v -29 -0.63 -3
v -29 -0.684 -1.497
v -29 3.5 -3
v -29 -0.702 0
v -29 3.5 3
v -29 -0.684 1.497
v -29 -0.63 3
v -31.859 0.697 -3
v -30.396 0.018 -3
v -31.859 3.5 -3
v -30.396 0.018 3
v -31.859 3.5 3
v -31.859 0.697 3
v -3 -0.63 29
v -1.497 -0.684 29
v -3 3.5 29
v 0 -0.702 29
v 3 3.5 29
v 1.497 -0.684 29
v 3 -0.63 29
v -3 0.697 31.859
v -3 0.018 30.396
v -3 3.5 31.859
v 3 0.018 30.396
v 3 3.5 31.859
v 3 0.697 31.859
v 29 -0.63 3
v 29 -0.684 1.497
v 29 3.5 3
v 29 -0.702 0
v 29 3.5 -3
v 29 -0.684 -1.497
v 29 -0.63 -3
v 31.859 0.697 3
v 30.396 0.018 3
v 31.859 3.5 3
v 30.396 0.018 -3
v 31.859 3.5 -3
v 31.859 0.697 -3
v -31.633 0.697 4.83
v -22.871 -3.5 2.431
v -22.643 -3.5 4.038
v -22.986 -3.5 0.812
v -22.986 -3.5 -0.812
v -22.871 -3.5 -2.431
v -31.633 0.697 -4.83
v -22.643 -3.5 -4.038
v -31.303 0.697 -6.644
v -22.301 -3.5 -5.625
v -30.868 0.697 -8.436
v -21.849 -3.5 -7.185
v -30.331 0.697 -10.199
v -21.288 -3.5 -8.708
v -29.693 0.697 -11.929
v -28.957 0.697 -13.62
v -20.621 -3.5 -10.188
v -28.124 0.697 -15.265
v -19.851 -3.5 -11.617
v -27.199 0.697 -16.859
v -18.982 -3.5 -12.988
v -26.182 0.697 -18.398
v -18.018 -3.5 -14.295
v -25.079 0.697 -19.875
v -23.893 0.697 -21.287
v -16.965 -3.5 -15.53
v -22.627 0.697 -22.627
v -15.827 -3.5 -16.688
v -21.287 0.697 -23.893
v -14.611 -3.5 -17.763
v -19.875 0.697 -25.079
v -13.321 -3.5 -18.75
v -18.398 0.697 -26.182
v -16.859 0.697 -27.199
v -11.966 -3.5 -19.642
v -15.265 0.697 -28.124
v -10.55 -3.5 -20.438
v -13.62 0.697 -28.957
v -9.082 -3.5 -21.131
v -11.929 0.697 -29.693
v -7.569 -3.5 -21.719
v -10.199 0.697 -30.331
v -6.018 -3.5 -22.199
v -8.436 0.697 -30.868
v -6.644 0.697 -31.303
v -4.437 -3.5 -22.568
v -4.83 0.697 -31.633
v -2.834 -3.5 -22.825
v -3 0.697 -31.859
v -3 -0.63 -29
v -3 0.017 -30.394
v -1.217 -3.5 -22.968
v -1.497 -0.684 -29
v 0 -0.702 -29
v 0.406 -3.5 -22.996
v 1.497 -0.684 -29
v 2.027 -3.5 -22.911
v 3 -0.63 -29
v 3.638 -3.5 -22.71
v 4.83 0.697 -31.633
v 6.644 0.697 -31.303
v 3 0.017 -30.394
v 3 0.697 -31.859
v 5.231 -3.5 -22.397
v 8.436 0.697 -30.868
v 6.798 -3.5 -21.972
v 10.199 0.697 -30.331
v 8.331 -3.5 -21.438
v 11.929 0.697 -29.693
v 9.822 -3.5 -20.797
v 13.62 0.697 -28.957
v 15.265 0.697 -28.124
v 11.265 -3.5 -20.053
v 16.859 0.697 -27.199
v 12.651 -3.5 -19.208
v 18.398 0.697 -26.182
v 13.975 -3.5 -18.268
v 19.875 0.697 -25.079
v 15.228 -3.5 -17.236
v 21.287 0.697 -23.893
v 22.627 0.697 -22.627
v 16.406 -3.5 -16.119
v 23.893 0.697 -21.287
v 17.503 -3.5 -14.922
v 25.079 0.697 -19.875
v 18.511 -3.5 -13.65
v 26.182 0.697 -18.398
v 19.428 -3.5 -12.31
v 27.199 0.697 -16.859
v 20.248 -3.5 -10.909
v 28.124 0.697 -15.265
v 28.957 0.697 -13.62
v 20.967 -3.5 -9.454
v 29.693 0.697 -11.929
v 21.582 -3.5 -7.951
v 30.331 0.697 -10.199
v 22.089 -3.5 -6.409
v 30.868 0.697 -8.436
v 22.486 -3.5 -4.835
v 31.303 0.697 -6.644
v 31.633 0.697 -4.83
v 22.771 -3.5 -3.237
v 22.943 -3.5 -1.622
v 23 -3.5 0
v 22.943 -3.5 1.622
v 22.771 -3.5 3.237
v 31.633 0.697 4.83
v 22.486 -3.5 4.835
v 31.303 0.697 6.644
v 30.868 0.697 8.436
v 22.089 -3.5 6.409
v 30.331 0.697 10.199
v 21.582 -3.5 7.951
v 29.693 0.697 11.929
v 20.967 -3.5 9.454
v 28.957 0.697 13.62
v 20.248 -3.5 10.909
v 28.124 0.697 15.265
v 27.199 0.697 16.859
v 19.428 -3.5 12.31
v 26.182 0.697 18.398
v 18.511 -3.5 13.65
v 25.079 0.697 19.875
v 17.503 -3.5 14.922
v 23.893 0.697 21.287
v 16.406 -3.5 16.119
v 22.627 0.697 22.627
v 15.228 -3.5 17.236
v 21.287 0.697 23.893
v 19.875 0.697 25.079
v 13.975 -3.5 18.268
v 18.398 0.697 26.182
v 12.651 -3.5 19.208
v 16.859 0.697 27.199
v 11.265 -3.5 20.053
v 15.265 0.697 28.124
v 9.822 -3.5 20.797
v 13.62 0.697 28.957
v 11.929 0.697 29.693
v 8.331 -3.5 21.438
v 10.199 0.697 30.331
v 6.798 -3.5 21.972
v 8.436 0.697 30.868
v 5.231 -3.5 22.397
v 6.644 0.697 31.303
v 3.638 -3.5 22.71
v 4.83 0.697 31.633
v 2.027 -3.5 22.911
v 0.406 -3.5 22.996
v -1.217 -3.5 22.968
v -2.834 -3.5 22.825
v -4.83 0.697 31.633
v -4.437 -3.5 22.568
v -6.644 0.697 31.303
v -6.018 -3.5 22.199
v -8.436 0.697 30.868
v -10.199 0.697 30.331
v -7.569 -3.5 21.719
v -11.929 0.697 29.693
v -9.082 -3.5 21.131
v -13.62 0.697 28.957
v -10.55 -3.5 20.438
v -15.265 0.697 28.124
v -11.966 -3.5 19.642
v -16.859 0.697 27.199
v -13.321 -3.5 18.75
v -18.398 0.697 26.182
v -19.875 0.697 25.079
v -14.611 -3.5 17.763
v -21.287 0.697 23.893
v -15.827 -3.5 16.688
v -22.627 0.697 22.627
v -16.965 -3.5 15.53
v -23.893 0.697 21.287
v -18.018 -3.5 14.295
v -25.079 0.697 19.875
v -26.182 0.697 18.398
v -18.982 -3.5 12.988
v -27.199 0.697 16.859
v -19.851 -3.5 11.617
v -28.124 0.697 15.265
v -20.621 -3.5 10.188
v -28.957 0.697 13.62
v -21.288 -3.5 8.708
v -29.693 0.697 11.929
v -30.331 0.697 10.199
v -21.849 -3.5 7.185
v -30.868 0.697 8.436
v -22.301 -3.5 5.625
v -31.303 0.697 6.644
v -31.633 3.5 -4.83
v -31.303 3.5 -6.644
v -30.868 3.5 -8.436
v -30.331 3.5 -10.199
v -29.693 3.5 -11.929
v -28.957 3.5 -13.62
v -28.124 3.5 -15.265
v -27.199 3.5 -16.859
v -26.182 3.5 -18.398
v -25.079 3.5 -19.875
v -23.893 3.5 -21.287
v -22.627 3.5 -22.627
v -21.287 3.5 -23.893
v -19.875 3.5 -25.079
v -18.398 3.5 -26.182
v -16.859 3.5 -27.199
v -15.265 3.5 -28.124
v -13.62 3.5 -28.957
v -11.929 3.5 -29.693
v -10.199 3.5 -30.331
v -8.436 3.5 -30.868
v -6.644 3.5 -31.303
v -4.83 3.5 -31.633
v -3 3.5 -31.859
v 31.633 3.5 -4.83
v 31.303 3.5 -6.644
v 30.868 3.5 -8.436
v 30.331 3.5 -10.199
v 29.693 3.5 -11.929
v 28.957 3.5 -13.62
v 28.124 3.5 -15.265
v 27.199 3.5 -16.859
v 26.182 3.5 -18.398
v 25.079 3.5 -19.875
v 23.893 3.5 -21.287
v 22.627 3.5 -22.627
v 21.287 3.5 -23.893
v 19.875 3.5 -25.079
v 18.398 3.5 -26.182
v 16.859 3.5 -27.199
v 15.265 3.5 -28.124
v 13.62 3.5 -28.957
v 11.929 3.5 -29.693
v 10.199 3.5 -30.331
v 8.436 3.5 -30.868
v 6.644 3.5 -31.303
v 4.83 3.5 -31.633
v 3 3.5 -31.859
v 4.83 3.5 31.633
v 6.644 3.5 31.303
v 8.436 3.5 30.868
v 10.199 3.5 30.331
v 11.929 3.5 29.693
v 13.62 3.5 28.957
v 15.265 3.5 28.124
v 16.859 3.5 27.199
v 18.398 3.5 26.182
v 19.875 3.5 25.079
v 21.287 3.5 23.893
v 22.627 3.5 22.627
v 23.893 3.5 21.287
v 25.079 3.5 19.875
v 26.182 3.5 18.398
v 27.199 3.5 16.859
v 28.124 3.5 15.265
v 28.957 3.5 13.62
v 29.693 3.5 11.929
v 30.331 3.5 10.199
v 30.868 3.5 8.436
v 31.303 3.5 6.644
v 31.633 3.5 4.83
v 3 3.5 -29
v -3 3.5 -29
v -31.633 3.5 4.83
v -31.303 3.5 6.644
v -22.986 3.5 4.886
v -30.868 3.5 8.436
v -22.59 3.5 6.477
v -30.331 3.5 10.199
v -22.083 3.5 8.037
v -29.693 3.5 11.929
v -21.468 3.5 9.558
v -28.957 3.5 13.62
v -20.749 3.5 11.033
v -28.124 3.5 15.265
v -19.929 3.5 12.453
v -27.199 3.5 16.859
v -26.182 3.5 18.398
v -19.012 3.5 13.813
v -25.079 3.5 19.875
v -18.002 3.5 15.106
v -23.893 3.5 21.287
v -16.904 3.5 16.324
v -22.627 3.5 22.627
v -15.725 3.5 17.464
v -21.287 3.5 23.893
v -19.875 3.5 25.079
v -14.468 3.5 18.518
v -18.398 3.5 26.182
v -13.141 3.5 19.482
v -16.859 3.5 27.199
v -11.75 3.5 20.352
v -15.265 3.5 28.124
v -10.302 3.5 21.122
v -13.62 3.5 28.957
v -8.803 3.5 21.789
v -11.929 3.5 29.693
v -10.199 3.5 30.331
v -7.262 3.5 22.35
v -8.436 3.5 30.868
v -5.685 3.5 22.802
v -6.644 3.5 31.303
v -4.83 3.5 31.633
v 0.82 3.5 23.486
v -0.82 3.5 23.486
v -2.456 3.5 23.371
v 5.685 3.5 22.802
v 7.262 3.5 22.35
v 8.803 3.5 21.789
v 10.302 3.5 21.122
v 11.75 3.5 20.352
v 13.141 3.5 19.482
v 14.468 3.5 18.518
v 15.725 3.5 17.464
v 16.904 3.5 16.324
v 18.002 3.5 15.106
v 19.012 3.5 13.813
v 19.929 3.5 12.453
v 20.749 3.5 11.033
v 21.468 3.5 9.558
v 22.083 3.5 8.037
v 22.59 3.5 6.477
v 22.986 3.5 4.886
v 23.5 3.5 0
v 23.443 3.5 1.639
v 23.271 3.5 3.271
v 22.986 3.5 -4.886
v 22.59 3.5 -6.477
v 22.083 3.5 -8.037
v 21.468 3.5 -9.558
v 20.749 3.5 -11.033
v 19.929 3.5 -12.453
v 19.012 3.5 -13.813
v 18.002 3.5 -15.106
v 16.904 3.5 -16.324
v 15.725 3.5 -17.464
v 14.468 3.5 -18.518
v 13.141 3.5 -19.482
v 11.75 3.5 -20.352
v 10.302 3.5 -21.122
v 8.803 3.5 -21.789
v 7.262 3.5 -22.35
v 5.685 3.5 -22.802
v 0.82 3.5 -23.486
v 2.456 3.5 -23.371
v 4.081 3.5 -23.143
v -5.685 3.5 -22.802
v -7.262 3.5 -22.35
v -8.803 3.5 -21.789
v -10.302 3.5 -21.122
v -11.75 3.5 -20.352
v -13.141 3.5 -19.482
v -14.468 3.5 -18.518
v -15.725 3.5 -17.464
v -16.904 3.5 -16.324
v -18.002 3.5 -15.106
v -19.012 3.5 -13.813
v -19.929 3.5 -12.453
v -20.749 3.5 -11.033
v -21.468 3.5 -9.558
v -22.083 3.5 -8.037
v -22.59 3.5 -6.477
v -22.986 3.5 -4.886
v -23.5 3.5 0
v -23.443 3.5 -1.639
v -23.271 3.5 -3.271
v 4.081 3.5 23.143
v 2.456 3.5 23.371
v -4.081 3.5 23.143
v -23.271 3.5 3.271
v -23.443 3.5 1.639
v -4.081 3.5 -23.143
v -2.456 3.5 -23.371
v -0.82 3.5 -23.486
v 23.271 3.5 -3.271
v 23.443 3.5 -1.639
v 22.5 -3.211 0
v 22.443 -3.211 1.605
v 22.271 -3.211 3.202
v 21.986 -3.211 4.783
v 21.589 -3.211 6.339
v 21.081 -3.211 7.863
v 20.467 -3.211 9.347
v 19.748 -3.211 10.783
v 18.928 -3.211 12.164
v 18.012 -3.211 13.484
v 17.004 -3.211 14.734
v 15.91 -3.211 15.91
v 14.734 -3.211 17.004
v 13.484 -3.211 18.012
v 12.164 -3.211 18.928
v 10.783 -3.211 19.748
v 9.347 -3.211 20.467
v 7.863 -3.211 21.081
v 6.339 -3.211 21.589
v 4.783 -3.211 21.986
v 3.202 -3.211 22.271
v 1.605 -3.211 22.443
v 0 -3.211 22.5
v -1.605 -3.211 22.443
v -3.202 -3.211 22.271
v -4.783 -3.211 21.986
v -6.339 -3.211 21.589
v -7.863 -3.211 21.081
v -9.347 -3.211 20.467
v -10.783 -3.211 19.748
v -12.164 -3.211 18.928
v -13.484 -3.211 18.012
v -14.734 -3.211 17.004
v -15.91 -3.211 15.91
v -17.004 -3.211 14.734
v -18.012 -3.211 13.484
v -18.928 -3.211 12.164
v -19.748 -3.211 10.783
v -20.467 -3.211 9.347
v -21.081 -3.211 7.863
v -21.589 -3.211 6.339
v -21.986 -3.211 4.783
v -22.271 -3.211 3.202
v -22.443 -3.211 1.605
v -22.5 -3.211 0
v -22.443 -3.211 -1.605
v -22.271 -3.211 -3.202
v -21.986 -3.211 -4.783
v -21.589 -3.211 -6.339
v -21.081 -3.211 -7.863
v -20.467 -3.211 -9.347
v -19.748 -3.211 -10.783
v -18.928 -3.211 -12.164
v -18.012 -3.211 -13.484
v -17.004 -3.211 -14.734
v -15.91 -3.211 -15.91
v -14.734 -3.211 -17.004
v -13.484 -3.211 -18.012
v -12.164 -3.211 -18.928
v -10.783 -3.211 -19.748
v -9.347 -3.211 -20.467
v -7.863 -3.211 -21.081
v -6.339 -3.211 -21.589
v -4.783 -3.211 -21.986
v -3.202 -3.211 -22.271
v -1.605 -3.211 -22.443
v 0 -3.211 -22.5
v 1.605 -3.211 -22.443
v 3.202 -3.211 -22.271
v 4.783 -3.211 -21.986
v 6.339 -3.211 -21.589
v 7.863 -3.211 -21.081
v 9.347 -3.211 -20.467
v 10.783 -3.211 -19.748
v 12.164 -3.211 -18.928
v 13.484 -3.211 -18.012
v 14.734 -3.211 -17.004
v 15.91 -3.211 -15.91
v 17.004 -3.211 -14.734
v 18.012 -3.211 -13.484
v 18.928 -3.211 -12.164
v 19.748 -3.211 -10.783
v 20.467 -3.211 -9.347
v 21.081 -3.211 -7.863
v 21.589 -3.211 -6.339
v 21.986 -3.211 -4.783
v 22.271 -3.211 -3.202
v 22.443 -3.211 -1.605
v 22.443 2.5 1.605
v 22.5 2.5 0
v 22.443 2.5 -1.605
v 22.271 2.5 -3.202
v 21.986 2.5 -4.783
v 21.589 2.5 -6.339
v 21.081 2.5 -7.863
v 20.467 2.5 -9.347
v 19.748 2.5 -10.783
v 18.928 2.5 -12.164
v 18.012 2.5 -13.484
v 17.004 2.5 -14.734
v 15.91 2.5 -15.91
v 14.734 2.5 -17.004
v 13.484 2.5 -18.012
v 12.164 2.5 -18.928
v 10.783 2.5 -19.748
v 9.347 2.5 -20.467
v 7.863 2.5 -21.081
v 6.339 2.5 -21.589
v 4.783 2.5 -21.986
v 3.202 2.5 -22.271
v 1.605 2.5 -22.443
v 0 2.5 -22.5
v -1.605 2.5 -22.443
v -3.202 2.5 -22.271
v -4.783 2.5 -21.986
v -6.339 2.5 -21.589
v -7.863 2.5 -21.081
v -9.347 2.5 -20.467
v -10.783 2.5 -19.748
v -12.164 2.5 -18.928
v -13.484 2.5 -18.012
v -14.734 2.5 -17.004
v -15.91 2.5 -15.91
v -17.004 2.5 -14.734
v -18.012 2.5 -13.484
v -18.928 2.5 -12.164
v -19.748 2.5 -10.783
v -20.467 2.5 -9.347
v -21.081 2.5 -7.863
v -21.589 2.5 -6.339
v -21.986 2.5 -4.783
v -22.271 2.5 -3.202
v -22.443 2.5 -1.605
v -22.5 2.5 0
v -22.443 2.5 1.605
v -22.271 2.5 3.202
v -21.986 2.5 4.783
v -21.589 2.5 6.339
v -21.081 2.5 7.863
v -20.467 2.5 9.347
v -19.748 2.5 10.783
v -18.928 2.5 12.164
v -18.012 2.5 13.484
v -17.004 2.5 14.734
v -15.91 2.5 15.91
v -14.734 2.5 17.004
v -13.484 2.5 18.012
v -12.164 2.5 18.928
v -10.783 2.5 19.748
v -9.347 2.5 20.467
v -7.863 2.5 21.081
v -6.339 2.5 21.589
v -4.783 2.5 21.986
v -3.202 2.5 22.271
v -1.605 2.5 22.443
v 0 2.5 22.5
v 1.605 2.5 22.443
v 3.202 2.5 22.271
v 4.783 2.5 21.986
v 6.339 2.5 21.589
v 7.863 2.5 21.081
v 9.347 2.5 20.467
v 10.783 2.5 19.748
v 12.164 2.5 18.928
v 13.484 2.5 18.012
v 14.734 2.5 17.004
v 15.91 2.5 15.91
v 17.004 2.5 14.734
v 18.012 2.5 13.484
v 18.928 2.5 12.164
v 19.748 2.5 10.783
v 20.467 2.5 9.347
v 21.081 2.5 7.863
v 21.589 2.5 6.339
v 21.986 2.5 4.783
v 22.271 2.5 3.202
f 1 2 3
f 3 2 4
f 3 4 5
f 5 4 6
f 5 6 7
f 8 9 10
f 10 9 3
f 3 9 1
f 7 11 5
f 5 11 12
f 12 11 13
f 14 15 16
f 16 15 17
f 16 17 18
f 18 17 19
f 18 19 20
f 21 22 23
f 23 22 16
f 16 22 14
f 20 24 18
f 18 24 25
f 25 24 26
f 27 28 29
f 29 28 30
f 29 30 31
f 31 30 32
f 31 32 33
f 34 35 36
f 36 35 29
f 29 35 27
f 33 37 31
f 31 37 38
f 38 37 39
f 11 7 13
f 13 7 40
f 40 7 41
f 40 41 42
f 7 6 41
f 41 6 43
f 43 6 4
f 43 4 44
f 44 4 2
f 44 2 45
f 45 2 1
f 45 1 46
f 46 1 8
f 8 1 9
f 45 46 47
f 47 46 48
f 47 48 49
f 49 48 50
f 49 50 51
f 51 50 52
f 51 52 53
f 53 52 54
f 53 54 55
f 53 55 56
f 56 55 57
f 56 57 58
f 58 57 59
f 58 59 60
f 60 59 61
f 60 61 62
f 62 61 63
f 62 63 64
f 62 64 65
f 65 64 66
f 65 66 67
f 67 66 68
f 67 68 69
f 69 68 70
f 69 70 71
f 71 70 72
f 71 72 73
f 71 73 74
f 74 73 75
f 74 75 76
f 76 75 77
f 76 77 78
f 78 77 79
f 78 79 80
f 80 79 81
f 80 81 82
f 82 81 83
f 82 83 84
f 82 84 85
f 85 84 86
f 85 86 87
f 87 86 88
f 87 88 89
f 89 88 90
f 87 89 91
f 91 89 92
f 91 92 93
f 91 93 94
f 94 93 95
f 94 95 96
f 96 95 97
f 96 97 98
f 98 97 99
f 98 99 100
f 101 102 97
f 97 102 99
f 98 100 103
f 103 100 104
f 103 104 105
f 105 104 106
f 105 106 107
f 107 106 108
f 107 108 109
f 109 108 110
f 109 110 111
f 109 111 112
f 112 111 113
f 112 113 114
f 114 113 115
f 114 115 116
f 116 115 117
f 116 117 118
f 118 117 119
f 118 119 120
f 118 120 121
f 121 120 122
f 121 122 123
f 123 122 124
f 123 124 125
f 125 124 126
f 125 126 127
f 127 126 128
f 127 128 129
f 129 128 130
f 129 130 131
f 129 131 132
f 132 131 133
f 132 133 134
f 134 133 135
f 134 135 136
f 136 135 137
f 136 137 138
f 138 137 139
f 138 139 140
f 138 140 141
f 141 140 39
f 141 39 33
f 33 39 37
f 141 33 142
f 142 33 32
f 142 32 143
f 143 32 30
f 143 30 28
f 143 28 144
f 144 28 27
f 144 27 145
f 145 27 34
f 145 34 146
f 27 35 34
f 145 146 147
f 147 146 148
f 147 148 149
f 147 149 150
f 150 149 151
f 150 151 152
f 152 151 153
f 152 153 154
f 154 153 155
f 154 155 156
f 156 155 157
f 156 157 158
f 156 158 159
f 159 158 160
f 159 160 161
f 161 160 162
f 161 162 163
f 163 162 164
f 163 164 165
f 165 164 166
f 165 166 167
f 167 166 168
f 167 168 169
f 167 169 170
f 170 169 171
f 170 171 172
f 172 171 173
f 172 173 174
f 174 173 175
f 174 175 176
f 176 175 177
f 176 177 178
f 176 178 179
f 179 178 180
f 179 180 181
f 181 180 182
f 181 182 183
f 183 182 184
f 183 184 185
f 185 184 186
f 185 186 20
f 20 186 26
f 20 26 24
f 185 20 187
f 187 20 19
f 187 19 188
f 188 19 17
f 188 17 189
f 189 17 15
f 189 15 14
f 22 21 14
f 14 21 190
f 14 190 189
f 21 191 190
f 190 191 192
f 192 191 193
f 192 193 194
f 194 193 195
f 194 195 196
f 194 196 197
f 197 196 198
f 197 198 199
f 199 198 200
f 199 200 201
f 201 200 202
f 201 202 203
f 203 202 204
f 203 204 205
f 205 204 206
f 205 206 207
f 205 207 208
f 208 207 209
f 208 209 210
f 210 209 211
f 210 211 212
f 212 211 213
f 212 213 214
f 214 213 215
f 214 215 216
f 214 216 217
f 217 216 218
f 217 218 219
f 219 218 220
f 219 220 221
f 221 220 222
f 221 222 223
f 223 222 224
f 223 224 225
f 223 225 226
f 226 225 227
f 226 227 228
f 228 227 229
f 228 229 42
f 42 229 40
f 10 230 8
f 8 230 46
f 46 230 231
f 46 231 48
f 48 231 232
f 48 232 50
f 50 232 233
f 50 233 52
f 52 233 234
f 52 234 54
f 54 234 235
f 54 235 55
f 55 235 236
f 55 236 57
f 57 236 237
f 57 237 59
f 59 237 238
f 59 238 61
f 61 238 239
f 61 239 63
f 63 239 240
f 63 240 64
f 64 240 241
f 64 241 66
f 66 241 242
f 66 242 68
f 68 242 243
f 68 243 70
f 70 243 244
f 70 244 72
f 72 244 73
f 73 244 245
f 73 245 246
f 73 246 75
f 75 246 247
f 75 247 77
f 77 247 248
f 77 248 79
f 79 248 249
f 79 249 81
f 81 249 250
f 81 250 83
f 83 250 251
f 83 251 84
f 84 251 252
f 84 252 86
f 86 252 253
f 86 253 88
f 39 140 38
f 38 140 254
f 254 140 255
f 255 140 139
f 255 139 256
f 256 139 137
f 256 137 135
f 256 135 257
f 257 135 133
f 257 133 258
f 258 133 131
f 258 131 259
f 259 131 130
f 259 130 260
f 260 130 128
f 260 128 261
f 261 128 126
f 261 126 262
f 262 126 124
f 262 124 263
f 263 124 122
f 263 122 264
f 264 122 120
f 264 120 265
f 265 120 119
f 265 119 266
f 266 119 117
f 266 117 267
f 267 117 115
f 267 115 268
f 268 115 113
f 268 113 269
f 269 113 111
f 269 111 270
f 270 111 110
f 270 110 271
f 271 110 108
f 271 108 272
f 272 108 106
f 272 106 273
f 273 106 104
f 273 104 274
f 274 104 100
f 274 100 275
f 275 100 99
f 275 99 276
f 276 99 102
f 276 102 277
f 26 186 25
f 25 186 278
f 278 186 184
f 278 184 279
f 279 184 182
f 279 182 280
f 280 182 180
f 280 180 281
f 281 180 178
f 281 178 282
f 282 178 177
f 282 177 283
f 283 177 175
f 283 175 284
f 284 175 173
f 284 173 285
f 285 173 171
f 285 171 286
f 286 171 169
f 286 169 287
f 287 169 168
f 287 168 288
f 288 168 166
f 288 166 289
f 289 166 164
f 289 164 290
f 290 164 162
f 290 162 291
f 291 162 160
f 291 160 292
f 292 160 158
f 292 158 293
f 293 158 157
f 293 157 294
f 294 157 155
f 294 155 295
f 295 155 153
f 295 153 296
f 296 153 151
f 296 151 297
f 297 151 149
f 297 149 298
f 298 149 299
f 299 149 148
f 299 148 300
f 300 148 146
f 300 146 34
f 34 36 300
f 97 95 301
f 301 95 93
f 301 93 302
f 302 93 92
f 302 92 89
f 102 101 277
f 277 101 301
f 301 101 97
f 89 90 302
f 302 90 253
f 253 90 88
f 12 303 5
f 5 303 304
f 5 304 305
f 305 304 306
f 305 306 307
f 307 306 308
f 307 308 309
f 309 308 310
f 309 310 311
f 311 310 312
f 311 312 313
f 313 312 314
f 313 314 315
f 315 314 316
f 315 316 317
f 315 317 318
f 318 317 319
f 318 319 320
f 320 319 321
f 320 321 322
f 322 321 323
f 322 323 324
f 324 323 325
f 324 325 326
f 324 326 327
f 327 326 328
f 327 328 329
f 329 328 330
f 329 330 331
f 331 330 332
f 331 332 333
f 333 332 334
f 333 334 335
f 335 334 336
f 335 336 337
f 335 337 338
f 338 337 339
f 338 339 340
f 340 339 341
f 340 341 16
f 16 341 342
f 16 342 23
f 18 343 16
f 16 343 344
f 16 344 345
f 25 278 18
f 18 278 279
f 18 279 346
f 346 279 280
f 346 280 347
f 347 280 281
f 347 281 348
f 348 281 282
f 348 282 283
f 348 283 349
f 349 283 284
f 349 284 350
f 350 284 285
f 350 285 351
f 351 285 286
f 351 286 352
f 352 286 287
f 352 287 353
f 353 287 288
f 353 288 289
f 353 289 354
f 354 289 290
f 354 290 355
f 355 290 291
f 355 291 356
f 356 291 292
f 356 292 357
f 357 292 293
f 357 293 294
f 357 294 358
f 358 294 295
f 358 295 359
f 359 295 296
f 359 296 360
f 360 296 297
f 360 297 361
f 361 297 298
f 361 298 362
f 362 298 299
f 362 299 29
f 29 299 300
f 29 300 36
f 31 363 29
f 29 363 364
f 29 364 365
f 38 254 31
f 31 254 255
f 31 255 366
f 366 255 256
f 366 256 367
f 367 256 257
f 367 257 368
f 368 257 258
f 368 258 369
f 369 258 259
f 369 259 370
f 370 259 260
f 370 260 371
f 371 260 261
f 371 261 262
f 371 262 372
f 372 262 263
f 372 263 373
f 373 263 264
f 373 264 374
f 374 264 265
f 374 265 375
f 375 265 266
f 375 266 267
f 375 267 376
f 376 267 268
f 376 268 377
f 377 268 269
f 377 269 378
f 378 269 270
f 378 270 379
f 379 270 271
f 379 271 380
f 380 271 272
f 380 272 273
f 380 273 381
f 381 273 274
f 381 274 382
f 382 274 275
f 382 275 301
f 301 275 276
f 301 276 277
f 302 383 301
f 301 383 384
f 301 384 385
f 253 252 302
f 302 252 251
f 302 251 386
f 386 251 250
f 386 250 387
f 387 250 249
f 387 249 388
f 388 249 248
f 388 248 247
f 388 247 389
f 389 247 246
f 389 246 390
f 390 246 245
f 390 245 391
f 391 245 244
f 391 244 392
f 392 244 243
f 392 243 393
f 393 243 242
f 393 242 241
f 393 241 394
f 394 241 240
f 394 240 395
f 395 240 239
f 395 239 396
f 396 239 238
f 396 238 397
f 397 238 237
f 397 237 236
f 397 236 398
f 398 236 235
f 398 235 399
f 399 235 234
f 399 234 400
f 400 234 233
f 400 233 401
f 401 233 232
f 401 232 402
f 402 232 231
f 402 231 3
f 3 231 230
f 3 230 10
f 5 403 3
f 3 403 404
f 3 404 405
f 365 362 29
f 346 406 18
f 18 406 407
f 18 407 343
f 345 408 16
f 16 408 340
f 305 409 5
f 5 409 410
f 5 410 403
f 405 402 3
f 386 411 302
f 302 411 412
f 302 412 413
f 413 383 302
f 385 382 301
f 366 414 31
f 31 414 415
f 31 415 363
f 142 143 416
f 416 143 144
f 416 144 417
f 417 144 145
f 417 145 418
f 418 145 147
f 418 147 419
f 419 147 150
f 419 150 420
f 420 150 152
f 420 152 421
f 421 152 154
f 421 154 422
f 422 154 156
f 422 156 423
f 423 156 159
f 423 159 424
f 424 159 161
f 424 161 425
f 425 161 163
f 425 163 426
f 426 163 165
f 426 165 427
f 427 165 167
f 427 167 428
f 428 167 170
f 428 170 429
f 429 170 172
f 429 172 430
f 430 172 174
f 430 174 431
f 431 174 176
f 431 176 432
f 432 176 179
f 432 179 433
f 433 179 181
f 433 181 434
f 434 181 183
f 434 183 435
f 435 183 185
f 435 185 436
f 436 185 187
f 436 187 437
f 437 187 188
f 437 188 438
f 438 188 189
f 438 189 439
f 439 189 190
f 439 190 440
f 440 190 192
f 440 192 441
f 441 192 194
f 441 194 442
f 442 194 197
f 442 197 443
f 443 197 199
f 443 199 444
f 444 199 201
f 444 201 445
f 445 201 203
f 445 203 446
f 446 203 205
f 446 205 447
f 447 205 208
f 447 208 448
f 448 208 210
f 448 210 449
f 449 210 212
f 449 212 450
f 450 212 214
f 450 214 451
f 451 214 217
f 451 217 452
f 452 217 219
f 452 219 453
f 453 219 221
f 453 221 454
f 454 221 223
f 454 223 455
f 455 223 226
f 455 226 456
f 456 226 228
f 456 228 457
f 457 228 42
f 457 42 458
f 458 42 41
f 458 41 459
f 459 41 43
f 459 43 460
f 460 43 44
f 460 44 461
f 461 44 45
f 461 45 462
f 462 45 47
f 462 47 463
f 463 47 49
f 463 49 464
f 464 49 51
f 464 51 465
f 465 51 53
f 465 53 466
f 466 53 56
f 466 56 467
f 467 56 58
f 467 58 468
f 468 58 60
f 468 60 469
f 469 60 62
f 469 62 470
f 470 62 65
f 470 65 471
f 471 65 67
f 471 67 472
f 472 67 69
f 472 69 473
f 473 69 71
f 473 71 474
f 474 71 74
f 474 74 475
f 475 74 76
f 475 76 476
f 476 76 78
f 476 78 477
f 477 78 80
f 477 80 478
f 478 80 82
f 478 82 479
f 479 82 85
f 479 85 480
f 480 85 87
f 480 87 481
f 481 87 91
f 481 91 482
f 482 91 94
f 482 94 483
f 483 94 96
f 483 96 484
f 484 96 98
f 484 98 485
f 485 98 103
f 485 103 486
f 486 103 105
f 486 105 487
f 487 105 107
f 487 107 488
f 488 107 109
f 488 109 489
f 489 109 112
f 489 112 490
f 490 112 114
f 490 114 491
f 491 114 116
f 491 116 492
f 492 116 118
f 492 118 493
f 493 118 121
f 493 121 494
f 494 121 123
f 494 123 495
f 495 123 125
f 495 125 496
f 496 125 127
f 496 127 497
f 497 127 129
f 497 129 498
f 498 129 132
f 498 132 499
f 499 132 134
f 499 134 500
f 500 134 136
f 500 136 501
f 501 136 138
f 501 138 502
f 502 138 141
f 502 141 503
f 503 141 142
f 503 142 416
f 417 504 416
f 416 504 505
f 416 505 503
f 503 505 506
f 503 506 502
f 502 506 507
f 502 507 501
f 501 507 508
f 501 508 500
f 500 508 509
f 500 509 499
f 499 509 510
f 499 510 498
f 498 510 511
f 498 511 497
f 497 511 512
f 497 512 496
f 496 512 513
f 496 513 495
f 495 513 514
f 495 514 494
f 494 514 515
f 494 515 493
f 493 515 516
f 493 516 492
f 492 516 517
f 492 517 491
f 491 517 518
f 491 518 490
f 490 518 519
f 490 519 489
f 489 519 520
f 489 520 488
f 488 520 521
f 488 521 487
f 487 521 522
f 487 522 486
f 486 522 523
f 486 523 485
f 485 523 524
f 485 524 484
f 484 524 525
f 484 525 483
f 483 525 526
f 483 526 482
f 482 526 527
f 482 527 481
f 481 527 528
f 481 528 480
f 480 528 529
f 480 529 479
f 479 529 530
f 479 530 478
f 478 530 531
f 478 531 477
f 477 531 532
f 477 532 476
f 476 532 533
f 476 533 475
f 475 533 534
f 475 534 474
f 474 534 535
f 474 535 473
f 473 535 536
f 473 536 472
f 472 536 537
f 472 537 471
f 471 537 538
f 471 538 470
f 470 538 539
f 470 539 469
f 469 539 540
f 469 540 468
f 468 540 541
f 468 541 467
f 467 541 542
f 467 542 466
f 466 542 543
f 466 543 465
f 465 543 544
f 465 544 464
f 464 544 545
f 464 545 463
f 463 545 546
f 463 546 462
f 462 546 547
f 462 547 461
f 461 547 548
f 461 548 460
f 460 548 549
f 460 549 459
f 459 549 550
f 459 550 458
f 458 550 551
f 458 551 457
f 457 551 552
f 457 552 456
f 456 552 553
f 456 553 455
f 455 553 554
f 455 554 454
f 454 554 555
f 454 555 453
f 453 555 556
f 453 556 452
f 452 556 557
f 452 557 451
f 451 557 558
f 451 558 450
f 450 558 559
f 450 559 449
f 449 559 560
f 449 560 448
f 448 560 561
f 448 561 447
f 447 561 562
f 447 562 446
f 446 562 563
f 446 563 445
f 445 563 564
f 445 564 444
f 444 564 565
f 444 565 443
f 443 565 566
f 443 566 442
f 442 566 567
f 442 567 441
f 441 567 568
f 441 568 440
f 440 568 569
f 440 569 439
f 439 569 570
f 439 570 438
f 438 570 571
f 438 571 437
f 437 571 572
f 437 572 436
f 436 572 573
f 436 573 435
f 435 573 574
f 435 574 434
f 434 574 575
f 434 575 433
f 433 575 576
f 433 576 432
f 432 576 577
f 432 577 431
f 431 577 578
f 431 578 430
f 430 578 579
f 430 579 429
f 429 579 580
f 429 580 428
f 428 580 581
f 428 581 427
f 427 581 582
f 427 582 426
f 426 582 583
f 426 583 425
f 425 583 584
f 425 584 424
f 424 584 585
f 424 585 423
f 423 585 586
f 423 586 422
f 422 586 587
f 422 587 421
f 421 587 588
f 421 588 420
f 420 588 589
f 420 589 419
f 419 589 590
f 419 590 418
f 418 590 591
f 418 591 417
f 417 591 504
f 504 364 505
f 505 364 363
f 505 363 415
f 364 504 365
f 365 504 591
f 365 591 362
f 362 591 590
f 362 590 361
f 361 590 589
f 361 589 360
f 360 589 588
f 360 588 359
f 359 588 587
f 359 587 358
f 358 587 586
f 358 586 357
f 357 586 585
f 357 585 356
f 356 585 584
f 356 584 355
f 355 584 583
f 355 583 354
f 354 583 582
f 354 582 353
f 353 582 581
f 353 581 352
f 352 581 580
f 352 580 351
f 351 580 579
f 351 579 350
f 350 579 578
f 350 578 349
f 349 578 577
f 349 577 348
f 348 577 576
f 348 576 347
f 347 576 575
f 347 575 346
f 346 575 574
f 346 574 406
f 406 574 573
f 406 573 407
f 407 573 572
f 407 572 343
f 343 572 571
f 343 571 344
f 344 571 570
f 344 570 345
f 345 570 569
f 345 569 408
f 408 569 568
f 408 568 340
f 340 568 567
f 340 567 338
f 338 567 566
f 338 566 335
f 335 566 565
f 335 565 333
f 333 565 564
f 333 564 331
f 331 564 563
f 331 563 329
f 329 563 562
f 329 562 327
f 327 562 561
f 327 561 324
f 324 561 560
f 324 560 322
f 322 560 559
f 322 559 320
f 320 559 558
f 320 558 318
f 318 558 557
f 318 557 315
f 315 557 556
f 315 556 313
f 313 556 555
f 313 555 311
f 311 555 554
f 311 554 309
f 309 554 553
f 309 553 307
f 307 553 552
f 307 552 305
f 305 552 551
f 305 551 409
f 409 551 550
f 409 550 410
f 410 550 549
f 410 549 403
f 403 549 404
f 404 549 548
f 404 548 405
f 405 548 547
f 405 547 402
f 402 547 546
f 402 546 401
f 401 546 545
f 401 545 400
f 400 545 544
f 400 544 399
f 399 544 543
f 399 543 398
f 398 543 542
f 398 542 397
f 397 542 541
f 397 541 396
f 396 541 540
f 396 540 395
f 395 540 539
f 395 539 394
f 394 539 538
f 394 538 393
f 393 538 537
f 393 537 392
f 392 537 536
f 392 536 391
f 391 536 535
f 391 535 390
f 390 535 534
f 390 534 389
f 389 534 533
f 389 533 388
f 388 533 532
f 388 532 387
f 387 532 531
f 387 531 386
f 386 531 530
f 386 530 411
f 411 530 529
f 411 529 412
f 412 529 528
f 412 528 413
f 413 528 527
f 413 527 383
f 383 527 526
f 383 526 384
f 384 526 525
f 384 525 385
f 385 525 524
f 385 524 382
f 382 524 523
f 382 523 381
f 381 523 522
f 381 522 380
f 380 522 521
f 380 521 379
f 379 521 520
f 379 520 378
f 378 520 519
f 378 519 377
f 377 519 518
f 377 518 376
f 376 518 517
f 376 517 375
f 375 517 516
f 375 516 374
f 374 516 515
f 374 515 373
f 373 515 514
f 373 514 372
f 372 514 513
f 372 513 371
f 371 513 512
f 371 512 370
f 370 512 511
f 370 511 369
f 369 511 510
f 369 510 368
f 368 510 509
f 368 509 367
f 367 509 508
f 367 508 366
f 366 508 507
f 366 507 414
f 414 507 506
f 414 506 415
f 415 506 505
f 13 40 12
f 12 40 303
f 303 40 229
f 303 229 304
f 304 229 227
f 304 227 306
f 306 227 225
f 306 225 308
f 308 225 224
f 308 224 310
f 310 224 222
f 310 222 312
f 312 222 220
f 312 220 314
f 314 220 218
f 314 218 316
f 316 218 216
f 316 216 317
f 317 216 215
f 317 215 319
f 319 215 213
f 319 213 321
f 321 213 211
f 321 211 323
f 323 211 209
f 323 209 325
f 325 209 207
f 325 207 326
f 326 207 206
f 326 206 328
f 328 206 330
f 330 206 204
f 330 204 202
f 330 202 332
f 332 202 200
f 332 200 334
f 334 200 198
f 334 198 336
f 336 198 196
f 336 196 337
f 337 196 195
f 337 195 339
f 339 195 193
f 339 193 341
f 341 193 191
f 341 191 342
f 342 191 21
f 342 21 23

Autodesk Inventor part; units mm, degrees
ref_plane "YZ Plane" through (0, 0, 0) normal (1, 0, 0) x (0, 1, 0)
ref_plane "XZ Plane" through (0, 0, 0) normal (0, 1, 0) x (-1, 0, 0)
ref_plane "XY Plane" through (0, 0, 0) normal (0, 0, 1) x (1, 0, 0)
sketch "Эскиз1" plane through (0, 0, 0) normal (0, 0, 1) x (1, 0, 0)
  line L0 (0, 3.5) -> (0, -3.5)
  line L1 (0, -3.5) -> (23, -3.5) construction
  line L2 (23, -3.5) -> (22.5, -3.2113)
  line L3 (22.5, -3.2113) -> (22.5, 2.5)
  line L4 (23.5, 3.5) -> (32, 3.5)
  line L5 (32, 3.5) -> (32, 0.6968)
  line L6 (32, 0.6968) -> (23, -3.5)
  line L7 (22.5, 2.5) -> (23.5, 3.5)
  point P0 (0, 0)
  point P1 (0, 0)
  point P2 (22.5, 3.5)
  dimension "d0" = 7
  dimension "d1" = 46
  dimension "d2" = 45
  dimension "d3" = 25
  dimension "d5" = 64
  dimension "d6" = 1
  dimension "d7" = 45
  dimension "d8" = 60
revolve "Вращение1" add sketch "Эскиз1" angle 360 about axis through (0, 3.5, 0) along (0, -1, 0)
sketch "Эскиз2" plane through (0, 3.5, 0) normal (0, 1, 0) x (1, 0, 0)
  line L0 (-3, 32) -> (3, 32)
  line L1 (3, 32) -> (3, 29)
  line L2 (3, 29) -> (-3, 29)
  line L3 (-3, 29) -> (-3, 32)
  circle A0 centre (0, 0) radius 32 projected
  point P0 (0, 0)
  point P1 (0, 29)
  point P2 (3, 31.8591)
  point P3 (-3, 31.8591)
  dimension "d10" = 6
  dimension "d11" = 3
extrude "Выдавливание1" cut sketch "Эскиз2" against normal through all contours A0 L1 L2 L3 picked at (0, 30)
pattern_circular "Круговой массив1" count 4 over 360 about axis through (0, -0.3557, 0) along (0, -1, 0) of "Выдавливание1"
thread "Резьба1" size "M45x1.5" class "6H" standard "ISO Metric profile" length 20
properties part number "76. Гайка первичного вала"
